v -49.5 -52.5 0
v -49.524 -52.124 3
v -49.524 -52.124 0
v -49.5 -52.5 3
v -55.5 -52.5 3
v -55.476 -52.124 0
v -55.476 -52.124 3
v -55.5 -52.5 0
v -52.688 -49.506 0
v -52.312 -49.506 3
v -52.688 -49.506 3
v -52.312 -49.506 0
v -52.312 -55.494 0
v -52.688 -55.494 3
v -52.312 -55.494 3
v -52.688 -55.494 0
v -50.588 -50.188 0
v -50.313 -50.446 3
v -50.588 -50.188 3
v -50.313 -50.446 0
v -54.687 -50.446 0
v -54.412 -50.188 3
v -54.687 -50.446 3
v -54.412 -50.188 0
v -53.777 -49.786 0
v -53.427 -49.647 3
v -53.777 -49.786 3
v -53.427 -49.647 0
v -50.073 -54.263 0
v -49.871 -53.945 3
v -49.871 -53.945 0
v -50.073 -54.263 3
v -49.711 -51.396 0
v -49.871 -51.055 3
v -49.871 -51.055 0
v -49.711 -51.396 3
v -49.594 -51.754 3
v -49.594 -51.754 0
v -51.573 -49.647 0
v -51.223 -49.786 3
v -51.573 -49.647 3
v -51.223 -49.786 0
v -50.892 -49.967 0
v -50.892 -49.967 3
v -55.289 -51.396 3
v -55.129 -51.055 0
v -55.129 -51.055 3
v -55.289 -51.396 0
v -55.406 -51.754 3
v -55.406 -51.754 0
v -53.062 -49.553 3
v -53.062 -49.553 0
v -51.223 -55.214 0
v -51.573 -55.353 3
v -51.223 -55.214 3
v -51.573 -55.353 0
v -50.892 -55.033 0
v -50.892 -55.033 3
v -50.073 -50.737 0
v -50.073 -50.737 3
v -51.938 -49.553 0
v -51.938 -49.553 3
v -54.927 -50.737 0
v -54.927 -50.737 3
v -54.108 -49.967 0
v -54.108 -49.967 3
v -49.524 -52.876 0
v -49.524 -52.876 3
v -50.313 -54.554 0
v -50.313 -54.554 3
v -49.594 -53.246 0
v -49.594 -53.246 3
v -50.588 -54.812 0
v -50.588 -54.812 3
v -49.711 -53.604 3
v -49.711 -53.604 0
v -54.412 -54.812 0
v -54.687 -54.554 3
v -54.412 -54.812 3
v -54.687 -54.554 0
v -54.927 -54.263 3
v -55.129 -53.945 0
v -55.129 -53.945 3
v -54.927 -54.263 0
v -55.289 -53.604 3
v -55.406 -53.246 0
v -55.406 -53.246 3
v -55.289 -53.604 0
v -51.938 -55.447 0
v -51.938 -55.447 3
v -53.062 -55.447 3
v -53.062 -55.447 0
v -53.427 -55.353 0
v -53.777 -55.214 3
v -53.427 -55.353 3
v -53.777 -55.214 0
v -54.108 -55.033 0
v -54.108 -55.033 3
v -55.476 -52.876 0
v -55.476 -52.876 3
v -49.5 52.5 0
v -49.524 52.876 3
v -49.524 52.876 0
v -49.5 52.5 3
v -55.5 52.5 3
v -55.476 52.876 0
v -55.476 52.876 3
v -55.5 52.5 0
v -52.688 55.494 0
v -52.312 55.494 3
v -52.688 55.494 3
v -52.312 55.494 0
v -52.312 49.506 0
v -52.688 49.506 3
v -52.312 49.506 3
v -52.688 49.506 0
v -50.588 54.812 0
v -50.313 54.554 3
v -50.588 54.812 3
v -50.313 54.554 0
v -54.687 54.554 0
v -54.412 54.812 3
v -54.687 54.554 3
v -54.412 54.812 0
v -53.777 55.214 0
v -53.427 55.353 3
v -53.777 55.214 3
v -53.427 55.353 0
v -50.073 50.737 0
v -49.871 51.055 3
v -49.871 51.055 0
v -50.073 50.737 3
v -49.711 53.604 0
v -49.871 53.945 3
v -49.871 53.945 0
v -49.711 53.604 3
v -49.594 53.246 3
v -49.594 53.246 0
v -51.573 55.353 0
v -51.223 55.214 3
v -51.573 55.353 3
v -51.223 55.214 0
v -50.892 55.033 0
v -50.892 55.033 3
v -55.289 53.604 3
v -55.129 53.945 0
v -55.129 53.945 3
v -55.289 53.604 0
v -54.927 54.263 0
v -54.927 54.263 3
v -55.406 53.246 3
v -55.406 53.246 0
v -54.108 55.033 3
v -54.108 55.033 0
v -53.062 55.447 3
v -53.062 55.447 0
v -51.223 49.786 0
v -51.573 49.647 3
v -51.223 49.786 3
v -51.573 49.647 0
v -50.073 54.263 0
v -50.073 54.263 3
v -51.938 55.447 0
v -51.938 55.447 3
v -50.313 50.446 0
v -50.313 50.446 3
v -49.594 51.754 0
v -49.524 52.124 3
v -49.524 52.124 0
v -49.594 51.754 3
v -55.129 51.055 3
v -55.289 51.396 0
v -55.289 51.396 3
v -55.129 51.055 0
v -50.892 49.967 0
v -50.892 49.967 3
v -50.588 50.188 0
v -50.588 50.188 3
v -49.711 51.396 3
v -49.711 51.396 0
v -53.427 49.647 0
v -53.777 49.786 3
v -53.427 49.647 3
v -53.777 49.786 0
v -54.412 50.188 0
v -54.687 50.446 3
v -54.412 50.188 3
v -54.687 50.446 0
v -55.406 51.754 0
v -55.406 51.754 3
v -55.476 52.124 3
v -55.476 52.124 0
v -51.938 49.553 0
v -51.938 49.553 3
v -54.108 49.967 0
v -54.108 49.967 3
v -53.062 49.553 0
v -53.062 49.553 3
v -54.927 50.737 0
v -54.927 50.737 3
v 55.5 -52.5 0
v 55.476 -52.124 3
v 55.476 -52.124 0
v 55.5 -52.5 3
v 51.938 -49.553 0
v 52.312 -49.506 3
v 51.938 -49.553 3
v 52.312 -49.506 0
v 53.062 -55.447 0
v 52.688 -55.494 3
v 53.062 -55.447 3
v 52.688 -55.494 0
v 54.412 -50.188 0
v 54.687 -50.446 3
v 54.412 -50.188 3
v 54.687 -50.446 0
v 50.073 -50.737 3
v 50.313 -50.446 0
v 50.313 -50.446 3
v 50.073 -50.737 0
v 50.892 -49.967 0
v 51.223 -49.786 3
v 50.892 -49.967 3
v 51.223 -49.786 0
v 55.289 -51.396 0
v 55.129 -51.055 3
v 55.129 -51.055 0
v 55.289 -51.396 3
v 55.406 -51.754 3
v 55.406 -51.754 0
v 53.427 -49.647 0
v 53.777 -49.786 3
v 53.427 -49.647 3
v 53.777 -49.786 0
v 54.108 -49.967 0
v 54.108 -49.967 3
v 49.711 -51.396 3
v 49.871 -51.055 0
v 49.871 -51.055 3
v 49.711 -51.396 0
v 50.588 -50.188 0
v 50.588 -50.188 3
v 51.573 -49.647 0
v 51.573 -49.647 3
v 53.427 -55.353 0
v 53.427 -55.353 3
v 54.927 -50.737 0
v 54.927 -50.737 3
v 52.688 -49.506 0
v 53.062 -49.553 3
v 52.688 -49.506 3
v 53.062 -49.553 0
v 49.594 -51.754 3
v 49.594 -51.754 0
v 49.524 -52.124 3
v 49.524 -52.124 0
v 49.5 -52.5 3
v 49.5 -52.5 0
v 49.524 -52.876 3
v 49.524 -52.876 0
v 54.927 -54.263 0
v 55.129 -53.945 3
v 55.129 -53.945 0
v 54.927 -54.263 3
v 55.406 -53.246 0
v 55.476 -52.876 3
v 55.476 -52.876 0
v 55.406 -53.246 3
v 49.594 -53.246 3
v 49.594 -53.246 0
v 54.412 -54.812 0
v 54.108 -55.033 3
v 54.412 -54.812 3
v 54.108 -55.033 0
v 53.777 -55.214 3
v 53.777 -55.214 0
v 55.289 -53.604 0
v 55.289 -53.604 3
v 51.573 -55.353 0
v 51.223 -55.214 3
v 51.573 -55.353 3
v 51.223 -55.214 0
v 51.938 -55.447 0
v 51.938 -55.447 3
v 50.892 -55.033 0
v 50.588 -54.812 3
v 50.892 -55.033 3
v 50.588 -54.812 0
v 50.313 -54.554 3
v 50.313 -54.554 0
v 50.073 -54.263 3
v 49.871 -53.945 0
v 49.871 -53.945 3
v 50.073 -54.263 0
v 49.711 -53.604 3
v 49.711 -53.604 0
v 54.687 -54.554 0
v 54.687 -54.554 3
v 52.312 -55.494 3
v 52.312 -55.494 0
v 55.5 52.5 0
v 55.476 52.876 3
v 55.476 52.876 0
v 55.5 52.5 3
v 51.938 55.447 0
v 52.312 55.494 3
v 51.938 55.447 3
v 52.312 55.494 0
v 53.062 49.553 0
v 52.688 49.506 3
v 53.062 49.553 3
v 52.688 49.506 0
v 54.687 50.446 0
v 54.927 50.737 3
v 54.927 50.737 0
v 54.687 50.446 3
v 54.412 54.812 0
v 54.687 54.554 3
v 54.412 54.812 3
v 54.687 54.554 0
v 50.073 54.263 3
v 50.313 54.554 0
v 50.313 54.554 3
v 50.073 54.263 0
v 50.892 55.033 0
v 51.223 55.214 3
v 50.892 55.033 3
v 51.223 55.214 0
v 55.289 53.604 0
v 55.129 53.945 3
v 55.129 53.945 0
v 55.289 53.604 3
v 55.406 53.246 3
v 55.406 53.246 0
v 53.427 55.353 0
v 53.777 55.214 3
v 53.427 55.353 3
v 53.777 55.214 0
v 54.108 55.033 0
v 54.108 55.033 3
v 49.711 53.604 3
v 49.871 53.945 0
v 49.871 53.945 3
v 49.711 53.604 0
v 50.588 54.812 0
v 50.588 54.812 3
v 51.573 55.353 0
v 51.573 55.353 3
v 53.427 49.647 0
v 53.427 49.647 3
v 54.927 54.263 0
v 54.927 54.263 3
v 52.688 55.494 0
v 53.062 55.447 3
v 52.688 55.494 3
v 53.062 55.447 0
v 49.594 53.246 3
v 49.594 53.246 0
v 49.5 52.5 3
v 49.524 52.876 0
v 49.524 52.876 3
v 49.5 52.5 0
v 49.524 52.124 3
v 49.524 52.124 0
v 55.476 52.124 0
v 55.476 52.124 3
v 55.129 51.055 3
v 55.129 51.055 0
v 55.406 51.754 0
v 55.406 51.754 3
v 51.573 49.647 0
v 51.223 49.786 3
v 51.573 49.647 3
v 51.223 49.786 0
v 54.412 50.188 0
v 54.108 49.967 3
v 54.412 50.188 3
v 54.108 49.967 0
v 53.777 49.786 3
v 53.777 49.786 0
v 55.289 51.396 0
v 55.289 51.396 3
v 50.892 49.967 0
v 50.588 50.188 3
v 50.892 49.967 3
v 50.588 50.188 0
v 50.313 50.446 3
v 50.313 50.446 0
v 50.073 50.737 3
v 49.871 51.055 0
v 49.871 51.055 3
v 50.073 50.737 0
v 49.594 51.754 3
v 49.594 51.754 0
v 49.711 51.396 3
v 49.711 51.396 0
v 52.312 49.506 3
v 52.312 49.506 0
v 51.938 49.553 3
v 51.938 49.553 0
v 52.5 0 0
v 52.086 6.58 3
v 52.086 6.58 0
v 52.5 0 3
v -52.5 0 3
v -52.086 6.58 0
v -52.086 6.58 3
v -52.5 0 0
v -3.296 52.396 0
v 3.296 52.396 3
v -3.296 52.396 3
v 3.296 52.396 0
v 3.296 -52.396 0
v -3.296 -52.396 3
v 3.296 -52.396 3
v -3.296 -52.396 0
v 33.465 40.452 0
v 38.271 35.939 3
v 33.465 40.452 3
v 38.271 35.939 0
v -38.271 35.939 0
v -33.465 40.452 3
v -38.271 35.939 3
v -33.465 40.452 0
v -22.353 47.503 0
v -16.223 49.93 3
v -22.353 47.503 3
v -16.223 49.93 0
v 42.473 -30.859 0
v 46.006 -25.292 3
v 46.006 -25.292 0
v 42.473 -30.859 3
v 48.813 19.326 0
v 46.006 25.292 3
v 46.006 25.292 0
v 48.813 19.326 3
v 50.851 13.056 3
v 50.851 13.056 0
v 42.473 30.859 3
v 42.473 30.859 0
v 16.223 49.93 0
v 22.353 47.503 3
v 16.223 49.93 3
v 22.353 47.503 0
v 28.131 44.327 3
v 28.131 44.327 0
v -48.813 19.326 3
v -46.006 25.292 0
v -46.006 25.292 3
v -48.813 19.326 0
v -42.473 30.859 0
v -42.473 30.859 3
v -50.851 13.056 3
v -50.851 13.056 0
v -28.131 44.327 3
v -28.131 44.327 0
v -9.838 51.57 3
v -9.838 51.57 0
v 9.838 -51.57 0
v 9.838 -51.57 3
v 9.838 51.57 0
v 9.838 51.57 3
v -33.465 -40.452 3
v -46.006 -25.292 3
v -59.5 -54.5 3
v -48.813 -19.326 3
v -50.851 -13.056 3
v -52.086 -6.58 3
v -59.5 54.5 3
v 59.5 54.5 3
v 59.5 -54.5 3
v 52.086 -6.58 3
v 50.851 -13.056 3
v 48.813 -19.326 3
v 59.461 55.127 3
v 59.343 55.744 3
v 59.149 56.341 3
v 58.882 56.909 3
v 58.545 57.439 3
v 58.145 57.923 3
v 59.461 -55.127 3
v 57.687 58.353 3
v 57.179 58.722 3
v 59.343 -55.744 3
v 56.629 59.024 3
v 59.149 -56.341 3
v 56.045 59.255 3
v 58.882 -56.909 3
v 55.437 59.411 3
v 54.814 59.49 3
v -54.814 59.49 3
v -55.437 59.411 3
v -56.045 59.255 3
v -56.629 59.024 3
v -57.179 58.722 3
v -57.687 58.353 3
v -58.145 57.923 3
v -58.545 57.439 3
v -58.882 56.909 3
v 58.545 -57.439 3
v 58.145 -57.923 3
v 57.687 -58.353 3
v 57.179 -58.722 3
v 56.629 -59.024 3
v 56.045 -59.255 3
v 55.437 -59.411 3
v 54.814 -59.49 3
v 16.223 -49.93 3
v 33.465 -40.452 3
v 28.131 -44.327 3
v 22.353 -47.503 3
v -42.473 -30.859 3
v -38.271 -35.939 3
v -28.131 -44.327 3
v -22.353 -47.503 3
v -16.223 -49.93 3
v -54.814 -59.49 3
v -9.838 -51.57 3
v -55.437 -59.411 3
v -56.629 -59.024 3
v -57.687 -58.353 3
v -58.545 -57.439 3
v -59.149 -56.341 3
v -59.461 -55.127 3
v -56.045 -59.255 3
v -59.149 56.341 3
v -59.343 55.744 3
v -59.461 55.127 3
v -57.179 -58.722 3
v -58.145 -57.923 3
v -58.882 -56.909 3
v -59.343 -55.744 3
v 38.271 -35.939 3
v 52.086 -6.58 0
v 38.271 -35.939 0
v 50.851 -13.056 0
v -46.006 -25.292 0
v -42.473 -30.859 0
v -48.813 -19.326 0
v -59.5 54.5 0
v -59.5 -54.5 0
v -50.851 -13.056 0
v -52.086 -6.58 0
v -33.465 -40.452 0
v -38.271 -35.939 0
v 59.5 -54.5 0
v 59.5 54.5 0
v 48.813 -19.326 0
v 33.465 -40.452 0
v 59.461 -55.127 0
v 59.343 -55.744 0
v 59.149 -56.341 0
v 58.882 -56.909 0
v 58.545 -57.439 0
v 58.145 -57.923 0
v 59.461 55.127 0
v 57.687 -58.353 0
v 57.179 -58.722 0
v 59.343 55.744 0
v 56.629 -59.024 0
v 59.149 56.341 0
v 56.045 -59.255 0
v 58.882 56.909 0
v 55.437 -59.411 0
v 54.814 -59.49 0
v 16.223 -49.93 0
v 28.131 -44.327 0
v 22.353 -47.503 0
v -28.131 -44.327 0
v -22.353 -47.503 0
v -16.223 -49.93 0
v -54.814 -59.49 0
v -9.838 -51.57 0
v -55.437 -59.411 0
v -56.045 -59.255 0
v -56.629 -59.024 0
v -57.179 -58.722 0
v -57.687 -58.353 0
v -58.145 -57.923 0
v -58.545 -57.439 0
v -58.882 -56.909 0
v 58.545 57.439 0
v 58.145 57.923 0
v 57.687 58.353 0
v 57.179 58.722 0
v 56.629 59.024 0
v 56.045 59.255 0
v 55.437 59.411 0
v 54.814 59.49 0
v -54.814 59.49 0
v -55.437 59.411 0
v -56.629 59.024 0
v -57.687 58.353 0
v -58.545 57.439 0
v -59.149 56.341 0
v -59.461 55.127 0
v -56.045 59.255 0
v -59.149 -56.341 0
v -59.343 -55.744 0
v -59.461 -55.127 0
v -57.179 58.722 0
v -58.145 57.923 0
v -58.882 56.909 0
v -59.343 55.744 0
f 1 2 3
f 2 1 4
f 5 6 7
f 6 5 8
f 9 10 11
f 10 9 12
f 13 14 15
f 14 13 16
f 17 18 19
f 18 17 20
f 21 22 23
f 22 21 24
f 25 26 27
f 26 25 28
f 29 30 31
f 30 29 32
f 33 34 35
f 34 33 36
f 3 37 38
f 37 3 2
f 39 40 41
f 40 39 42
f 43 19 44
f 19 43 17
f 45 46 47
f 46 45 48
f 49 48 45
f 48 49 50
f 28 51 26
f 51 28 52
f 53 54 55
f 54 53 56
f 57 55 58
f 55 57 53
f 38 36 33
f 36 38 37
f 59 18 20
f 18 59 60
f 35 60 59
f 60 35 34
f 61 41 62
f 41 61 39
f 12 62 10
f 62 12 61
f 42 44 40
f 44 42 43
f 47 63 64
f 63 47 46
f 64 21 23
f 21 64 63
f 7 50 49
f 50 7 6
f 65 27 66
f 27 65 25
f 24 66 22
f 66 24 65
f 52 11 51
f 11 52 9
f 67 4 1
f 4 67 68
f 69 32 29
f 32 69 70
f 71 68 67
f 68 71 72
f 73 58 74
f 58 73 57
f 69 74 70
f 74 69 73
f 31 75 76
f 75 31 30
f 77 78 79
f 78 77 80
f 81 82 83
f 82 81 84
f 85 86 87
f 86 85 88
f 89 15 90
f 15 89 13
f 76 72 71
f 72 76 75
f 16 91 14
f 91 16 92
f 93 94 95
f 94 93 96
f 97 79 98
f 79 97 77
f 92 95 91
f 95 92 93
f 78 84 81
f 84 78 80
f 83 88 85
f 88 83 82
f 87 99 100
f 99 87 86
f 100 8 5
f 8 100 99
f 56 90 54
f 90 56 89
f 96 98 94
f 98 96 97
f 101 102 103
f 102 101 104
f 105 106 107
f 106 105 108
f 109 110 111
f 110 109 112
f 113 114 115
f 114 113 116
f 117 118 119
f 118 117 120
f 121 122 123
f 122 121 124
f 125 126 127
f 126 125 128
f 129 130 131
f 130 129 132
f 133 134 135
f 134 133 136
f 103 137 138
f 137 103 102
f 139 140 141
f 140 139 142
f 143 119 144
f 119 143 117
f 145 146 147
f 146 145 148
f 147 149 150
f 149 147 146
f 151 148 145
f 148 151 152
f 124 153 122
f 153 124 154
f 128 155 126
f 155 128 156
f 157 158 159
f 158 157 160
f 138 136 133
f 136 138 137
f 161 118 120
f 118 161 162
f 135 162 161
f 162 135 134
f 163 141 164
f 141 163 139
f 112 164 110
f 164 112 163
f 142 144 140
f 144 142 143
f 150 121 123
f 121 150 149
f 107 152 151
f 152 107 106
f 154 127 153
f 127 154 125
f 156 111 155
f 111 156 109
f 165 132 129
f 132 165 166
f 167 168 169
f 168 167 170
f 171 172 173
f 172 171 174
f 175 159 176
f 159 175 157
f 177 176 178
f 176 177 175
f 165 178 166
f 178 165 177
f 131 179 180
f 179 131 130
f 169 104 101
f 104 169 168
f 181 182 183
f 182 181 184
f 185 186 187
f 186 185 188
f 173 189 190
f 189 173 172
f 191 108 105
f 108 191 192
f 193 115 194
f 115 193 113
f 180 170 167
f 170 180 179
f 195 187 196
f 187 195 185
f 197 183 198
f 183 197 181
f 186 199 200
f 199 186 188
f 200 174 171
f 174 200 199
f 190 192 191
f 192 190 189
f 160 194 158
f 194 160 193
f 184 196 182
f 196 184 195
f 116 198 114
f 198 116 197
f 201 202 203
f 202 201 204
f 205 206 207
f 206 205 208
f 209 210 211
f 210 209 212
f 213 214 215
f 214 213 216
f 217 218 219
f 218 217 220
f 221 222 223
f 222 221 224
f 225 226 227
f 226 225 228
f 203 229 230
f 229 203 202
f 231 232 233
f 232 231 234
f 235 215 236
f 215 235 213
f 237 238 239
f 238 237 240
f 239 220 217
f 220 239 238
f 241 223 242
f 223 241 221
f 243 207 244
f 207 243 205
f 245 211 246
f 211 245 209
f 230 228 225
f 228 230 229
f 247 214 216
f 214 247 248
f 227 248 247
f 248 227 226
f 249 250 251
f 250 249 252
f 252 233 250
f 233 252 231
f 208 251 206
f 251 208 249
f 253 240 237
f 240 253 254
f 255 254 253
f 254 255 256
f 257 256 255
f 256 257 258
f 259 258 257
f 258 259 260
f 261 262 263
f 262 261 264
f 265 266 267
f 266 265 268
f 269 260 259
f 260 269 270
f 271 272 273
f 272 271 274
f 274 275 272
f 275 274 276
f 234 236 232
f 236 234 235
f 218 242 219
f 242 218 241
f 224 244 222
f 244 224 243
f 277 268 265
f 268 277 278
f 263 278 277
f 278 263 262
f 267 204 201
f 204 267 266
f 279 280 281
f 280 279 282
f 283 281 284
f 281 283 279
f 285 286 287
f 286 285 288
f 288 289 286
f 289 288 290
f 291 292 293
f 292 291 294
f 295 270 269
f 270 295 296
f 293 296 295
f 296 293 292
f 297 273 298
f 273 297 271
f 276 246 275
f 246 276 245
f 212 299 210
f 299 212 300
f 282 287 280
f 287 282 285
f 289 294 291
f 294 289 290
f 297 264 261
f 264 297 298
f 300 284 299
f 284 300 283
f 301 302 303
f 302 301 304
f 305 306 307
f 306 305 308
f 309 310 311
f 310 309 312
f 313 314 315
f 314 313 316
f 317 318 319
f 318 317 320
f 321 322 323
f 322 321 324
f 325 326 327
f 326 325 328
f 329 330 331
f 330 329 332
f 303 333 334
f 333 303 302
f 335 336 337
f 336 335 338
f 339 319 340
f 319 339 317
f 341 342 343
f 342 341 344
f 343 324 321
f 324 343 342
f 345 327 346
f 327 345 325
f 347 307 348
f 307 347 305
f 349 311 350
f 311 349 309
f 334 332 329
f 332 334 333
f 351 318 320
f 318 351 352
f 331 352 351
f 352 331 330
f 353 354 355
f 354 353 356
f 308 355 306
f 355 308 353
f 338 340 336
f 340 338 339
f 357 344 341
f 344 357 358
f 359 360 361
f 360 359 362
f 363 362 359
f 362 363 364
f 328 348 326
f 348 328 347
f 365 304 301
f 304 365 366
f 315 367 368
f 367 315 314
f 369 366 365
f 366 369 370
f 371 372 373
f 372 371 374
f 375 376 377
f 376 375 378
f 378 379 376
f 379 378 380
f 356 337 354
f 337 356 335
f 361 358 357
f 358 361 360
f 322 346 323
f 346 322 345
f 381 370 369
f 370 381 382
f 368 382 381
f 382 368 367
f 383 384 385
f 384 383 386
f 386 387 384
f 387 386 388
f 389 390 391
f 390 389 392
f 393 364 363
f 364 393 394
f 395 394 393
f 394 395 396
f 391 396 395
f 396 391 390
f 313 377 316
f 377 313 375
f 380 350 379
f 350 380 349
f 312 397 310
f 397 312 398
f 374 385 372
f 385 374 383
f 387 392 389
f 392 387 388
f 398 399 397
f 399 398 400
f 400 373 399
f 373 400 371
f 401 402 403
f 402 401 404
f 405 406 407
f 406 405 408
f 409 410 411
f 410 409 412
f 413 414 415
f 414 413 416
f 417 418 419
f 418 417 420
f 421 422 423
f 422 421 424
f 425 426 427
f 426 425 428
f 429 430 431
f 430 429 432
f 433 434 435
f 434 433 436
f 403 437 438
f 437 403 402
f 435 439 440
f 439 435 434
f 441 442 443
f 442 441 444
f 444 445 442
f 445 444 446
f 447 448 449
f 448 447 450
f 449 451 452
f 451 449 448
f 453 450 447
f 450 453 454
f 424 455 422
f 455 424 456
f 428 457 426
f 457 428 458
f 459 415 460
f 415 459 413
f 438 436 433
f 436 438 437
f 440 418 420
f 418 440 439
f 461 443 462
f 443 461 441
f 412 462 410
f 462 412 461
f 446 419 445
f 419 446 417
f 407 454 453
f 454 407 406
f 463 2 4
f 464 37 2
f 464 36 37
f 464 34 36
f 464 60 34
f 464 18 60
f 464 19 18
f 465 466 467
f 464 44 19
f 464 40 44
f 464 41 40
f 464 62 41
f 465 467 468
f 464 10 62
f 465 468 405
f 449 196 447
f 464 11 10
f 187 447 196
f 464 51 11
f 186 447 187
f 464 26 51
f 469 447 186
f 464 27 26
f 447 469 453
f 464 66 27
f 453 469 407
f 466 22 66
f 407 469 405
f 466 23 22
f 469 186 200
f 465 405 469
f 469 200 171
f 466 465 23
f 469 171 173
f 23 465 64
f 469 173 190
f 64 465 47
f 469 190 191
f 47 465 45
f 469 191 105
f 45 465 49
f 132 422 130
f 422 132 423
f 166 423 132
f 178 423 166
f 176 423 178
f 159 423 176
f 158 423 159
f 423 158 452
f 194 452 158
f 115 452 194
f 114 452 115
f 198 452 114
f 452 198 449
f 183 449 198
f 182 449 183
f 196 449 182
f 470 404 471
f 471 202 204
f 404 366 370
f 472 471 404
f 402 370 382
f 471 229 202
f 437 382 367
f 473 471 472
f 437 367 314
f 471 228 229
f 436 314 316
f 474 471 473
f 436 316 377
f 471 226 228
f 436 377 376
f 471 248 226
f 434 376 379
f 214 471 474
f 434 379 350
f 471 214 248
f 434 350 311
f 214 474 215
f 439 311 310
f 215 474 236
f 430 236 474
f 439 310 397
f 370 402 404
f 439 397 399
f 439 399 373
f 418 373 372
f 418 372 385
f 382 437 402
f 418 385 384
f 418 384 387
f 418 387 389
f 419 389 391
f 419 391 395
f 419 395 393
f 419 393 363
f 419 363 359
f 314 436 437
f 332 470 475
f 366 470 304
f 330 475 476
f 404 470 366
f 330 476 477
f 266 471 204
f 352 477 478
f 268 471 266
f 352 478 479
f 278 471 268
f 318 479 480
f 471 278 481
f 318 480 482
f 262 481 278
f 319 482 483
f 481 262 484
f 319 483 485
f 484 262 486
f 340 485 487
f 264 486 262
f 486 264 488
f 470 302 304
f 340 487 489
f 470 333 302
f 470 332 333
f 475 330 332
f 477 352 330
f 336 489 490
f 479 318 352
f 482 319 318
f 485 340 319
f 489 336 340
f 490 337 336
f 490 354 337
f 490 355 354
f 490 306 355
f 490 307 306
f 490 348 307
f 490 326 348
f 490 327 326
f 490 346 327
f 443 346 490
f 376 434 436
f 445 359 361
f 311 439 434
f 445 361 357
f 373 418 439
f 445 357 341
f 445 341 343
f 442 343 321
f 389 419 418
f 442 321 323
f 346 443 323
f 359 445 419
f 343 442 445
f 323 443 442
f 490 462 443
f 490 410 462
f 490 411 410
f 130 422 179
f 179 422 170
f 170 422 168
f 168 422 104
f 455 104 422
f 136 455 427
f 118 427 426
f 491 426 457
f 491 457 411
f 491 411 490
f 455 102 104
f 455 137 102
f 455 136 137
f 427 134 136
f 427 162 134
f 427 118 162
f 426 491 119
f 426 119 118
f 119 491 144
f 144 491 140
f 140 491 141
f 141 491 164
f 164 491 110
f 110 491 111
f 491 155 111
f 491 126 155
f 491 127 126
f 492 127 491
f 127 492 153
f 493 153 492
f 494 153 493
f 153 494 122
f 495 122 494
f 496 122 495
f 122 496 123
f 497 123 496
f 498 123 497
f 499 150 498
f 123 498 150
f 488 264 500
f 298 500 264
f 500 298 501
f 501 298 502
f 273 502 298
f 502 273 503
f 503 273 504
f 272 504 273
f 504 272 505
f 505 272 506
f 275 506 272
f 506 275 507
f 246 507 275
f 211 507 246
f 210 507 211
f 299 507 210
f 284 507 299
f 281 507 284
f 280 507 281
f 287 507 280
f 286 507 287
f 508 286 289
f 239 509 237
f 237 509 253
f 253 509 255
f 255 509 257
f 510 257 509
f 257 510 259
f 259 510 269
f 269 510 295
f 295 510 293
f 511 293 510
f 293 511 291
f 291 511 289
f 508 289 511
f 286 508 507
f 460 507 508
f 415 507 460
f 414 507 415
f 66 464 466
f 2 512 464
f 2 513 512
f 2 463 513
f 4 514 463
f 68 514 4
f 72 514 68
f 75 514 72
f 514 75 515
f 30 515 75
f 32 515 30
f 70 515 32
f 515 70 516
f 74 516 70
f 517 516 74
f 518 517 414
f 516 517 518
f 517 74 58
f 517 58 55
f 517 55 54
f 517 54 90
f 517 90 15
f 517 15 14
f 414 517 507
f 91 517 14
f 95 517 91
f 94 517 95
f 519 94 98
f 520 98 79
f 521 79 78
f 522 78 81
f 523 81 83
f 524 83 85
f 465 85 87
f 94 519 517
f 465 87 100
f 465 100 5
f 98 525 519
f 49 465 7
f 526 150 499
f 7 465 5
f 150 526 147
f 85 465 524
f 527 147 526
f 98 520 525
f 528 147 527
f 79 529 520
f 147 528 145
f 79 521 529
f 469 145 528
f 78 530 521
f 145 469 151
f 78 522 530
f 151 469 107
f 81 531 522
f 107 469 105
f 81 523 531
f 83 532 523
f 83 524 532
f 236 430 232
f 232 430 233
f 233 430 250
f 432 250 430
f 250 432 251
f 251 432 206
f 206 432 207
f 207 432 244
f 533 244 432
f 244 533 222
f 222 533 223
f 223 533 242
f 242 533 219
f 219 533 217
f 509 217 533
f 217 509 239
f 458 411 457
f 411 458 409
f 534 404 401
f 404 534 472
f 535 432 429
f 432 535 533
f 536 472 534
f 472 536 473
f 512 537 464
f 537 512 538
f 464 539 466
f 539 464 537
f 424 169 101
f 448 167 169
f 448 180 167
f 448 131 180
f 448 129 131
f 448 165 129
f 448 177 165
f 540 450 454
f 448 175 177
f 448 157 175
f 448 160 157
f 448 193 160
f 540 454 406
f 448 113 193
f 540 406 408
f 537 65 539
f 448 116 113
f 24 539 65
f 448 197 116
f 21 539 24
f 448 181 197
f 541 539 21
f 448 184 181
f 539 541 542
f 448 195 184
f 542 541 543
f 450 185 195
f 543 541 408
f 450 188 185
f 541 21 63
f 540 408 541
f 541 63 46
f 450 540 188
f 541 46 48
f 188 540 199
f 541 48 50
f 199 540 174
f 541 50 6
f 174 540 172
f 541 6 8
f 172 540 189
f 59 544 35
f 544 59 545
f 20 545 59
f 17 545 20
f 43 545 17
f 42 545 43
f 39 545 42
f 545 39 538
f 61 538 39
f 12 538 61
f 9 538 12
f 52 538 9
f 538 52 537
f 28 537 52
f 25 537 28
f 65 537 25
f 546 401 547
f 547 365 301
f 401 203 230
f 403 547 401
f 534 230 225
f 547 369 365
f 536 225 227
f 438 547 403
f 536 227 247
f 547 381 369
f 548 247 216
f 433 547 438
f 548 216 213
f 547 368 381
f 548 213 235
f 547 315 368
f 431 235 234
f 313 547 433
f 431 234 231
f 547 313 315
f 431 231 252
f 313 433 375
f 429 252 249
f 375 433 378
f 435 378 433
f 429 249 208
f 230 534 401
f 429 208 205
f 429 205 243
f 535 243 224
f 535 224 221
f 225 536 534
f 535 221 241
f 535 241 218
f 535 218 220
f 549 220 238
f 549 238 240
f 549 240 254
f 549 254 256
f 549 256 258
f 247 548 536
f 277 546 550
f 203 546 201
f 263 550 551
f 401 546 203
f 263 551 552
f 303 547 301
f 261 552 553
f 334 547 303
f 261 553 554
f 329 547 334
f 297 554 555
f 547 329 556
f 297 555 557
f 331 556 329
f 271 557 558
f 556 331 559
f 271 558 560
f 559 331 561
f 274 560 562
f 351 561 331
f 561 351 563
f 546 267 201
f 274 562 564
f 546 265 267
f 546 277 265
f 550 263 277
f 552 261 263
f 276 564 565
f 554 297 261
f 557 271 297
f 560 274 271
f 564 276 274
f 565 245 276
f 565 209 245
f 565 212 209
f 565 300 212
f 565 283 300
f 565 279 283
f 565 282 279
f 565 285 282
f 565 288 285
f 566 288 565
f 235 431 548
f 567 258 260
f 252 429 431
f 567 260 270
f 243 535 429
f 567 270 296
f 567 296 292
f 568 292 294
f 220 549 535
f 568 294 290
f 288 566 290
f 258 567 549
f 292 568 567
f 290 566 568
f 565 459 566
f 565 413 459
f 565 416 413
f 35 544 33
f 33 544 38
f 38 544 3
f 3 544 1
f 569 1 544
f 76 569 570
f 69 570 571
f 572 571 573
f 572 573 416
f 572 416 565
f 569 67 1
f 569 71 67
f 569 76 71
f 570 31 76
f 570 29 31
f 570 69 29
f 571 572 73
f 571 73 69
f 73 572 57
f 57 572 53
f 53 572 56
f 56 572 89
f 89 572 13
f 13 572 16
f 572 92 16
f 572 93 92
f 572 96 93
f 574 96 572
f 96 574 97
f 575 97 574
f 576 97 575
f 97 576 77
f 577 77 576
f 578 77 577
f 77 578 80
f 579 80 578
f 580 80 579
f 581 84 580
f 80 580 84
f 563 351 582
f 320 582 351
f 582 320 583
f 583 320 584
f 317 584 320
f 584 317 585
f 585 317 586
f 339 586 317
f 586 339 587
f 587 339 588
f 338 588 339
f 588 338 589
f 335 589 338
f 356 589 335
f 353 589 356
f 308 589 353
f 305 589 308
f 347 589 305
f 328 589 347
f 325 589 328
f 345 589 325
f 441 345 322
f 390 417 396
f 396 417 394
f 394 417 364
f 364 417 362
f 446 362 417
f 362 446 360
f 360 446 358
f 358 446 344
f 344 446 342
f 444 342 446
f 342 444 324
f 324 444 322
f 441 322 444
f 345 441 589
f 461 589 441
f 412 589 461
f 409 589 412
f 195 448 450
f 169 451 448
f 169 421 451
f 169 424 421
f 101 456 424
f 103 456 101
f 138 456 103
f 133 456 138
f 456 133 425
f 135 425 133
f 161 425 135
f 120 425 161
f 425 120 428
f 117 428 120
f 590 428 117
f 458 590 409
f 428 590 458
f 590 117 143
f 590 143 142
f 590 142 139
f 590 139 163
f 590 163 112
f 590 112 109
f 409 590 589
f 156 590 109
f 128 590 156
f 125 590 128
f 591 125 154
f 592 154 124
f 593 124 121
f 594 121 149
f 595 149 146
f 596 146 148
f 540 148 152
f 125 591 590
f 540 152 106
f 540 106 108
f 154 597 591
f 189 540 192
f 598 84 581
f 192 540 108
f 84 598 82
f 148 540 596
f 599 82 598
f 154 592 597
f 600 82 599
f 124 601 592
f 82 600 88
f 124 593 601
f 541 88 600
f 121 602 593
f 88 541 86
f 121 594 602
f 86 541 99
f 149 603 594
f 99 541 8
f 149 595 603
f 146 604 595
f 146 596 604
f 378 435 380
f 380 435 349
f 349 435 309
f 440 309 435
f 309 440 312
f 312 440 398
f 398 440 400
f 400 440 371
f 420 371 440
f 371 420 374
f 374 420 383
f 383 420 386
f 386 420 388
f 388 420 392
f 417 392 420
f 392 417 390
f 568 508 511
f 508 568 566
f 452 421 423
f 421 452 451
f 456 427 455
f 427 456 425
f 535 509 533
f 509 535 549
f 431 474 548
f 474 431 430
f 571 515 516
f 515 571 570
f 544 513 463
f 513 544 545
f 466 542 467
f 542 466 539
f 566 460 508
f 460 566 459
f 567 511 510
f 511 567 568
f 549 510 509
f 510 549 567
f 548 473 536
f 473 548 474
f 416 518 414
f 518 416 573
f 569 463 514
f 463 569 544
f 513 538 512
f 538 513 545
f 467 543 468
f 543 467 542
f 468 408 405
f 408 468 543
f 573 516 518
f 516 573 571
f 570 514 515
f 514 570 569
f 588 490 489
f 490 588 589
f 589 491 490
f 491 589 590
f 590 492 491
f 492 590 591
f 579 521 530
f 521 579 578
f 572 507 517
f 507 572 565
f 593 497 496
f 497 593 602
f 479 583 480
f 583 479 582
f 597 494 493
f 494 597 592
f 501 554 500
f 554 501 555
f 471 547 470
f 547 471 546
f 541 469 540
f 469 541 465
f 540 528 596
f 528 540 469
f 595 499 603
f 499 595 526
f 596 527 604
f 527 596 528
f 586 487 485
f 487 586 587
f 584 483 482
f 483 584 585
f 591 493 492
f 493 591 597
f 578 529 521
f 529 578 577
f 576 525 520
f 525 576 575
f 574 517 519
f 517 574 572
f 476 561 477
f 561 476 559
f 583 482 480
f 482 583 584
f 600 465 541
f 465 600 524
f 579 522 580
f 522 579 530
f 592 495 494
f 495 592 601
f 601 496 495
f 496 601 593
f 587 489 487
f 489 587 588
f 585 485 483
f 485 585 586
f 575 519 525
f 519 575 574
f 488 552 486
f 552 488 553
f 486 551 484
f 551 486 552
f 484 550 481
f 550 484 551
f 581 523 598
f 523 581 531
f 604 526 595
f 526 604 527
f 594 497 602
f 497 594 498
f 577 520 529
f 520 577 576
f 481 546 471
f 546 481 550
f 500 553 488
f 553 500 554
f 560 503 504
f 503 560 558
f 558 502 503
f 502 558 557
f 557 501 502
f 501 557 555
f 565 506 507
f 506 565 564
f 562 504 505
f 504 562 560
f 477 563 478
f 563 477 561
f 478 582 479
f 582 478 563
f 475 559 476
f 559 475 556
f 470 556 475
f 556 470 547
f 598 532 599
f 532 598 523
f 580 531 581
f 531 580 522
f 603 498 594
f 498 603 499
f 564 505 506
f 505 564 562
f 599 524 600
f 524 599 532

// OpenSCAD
$fn = 50;


difference() {
	union() {
		hull() {
			translate(v = [-54.5000000000, 54.5000000000, 0]) {
				cylinder(h = 3, r = 5);
			}
			translate(v = [54.5000000000, 54.5000000000, 0]) {
				cylinder(h = 3, r = 5);
			}
			translate(v = [-54.5000000000, -54.5000000000, 0]) {
				cylinder(h = 3, r = 5);
			}
			translate(v = [54.5000000000, -54.5000000000, 0]) {
				cylinder(h = 3, r = 5);
			}
		}
	}
	union() {
		#translate(v = [-52.5000000000, -52.5000000000, -100.0000000000]) {
			cylinder(h = 200, r = 3.0000000000);
		}
		#translate(v = [-52.5000000000, 52.5000000000, -100.0000000000]) {
			cylinder(h = 200, r = 3.0000000000);
		}
		#translate(v = [52.5000000000, -52.5000000000, -100.0000000000]) {
			cylinder(h = 200, r = 3.0000000000);
		}
		#translate(v = [52.5000000000, 52.5000000000, -100.0000000000]) {
			cylinder(h = 200, r = 3.0000000000);
		}
		#cylinder(h = 3, r = 52.5000000000);
	}
}
